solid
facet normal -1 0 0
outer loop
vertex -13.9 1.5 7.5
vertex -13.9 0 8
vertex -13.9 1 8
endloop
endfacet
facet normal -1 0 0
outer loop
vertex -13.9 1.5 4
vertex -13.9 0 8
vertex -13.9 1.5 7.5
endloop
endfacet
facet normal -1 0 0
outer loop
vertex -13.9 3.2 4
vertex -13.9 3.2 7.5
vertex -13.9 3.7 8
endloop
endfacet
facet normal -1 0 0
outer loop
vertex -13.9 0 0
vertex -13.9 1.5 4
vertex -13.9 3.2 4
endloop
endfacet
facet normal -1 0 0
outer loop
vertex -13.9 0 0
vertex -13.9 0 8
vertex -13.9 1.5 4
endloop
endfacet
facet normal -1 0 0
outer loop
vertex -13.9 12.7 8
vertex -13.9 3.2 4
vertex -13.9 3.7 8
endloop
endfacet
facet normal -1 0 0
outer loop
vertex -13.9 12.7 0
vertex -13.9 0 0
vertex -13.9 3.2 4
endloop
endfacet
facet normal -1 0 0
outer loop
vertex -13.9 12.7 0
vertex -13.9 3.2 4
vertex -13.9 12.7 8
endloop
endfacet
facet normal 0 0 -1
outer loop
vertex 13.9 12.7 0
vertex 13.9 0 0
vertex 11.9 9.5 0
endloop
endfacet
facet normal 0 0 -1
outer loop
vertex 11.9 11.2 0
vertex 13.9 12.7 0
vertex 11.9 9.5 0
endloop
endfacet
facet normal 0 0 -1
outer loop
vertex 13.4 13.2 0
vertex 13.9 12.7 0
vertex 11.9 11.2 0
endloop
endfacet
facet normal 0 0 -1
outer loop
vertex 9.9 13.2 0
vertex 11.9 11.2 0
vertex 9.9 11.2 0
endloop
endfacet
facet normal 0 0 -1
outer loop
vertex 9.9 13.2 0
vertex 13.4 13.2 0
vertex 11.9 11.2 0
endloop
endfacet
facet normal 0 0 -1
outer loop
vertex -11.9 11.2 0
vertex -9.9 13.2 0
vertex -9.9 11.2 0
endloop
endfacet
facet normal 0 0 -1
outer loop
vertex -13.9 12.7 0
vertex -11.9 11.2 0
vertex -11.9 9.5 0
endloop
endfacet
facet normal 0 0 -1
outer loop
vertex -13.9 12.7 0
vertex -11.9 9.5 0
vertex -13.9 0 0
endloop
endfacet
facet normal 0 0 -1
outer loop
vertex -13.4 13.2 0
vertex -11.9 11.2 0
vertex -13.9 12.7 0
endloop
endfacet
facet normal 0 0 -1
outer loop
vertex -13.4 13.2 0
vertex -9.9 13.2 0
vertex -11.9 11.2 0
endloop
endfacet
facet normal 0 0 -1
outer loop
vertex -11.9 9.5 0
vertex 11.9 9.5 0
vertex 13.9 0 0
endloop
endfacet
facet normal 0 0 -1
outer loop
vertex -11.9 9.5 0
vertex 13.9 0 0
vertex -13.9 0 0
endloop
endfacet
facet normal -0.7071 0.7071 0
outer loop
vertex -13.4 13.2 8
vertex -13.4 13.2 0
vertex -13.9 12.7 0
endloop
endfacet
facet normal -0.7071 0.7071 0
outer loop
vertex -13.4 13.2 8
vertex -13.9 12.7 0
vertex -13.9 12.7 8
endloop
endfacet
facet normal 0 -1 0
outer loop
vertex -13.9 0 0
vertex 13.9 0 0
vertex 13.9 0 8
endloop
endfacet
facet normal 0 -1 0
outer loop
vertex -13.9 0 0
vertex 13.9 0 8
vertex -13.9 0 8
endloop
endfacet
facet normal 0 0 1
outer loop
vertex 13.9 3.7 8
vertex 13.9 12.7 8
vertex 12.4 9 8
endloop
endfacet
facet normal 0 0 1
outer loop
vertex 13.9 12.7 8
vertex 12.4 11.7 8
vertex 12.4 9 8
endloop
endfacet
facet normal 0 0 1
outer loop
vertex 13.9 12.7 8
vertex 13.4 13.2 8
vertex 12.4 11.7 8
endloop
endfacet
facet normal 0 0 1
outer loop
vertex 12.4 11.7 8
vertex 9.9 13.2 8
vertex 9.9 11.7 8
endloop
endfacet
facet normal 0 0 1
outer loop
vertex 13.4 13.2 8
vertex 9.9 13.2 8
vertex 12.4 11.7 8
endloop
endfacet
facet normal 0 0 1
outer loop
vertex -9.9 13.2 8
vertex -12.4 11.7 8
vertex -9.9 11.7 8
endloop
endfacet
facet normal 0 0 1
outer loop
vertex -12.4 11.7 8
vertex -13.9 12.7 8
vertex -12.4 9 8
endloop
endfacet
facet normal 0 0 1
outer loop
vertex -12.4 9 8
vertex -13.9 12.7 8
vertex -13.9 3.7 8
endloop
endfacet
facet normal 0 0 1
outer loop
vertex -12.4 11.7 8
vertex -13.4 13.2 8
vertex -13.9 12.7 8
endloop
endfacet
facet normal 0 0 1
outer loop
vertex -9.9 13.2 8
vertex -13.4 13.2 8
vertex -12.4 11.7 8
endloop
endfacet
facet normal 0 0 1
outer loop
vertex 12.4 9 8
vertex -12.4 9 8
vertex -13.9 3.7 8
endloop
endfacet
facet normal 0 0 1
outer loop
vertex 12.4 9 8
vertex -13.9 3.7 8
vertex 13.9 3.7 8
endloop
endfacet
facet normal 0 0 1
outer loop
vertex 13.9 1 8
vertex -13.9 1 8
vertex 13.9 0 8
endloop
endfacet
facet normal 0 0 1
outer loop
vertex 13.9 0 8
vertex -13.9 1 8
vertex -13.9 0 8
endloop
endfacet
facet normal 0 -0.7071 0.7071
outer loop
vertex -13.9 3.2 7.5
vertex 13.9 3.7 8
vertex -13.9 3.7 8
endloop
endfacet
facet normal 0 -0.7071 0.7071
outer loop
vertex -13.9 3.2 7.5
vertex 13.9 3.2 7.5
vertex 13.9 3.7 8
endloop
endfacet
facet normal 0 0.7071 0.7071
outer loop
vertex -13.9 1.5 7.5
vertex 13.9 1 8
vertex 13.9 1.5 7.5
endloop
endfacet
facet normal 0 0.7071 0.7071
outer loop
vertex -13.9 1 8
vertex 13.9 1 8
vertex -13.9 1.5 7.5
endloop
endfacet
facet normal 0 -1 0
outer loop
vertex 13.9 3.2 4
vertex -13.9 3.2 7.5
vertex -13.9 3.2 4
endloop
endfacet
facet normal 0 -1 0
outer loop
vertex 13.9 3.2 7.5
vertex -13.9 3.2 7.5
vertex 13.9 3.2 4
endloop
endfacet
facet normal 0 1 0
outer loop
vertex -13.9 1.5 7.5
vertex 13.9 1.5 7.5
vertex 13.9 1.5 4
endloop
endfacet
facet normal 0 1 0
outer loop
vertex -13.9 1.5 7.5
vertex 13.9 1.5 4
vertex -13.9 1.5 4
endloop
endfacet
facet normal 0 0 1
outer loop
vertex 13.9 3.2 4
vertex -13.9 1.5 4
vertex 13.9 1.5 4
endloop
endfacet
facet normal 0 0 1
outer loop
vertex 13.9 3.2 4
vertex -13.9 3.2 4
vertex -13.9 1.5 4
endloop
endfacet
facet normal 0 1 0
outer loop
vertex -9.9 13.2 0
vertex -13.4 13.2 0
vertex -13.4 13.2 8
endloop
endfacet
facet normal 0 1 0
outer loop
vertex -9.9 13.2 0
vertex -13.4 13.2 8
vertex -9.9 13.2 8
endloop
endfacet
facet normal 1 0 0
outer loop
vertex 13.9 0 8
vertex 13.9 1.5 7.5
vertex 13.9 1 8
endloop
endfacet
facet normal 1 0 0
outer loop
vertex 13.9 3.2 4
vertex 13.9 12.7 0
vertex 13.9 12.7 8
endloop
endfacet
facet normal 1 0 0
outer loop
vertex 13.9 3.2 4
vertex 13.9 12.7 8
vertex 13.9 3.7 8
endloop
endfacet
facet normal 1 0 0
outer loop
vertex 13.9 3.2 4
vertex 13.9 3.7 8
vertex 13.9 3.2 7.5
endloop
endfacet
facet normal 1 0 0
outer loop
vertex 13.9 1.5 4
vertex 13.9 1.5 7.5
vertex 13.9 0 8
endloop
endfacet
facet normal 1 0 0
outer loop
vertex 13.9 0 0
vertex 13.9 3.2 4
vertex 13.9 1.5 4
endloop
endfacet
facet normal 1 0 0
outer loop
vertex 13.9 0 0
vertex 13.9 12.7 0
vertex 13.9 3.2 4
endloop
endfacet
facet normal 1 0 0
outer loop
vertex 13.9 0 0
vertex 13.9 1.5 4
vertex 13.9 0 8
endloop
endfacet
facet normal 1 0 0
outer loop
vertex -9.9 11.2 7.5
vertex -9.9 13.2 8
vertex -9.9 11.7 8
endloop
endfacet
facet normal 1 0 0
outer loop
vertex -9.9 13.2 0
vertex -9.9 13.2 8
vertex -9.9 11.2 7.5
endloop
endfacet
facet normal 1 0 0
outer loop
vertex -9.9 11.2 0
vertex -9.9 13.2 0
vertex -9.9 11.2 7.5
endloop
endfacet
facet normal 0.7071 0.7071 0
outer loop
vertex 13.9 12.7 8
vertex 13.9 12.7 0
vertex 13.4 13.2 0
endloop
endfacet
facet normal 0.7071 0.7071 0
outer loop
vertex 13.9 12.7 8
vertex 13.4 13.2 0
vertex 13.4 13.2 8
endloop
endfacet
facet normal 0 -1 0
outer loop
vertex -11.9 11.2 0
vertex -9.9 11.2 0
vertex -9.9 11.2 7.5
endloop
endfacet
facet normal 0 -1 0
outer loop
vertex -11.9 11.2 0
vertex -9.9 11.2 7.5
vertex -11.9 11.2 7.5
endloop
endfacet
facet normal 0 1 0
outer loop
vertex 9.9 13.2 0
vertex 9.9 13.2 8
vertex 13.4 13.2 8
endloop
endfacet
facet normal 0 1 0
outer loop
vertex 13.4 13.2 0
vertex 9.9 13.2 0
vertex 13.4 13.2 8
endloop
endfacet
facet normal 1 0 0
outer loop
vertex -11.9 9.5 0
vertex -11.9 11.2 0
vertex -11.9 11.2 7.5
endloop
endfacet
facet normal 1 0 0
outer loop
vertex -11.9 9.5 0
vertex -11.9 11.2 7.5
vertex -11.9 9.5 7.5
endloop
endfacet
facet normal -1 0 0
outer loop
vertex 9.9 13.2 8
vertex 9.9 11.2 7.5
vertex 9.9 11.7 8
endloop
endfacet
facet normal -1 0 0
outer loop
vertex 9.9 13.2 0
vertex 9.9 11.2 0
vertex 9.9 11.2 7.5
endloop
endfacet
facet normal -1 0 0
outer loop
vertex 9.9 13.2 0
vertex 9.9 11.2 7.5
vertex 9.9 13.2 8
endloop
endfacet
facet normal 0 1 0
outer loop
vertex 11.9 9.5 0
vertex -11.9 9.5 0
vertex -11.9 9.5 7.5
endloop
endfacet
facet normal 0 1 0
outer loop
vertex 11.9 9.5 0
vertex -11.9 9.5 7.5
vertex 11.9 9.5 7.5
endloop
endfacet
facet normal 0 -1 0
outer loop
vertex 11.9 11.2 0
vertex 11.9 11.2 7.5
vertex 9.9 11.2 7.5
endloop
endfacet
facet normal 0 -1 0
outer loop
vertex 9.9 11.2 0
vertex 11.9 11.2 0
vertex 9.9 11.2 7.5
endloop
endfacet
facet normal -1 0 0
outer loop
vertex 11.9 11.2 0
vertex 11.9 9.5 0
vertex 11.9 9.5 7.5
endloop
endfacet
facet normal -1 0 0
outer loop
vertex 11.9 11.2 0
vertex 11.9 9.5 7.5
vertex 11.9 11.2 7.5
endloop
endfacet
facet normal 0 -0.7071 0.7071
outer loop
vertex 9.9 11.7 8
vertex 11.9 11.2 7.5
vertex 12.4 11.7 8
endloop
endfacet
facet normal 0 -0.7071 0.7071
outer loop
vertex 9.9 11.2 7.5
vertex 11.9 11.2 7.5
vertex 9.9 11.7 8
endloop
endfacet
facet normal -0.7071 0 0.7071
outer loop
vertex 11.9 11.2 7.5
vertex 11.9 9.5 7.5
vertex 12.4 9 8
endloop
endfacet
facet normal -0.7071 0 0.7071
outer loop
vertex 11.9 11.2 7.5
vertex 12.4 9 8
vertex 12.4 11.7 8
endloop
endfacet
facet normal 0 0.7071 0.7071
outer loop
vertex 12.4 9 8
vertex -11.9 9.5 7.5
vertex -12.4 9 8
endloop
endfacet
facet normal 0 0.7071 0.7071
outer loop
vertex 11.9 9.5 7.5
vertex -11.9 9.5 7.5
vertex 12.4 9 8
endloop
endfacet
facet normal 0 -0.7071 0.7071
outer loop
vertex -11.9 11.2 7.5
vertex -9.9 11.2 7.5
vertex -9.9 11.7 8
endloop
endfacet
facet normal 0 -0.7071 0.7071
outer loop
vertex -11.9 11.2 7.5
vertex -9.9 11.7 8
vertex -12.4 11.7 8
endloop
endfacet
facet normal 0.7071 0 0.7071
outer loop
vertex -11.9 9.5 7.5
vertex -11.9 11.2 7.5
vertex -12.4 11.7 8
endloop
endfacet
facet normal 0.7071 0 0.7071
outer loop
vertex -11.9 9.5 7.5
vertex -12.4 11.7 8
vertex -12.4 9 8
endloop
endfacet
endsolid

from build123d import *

# Parameters (mm, degrees)
PAD_DEPTH    = 8
SKETCH001_W  = 27.8
SKETCH001_H  = 1.7
POCKET_DEPTH = 4
CHAMFER_SIZE = 0.5


with BuildPart() as part:
    # Sketch → Pad (new body)
    with BuildSketch(Plane.XY):
        Polygon((-13.9, 0), (-13.9, 13.2), (-9.9, 13.2), (-9.9, 11.2), (-11.9, 11.2), (-11.9, 9.5), (11.9, 9.5), (11.9, 11.2), (9.9, 11.2), (9.9, 13.2), (13.9, 13.2), (13.9, 0), align=None)
    extrude(amount=PAD_DEPTH)

    # Sketch001 → Pocket (cut)
    with BuildSketch(Plane.XY.offset(8)):
        with Locations((0, 2.35)):
            Rectangle(SKETCH001_W, SKETCH001_H)
    extrude(amount=-POCKET_DEPTH, mode=Mode.SUBTRACT)

    # Chamfer
    chamfer_edges = [part.edges().sort_by_distance(p)[0] for p in [
        (0, 1.5, 8),
        (0, 3.2, 8),
        (0, 9.5, 8),
        (-11.9, 10.35, 8),
        (-10.9, 11.2, 8),
        (11.9, 10.35, 8),
        (10.9, 11.2, 8),
        (-13.9, 13.2, 4),
        (13.9, 13.2, 4),
    ]]
    chamfer(chamfer_edges, length=CHAMFER_SIZE)


solid = part.part
